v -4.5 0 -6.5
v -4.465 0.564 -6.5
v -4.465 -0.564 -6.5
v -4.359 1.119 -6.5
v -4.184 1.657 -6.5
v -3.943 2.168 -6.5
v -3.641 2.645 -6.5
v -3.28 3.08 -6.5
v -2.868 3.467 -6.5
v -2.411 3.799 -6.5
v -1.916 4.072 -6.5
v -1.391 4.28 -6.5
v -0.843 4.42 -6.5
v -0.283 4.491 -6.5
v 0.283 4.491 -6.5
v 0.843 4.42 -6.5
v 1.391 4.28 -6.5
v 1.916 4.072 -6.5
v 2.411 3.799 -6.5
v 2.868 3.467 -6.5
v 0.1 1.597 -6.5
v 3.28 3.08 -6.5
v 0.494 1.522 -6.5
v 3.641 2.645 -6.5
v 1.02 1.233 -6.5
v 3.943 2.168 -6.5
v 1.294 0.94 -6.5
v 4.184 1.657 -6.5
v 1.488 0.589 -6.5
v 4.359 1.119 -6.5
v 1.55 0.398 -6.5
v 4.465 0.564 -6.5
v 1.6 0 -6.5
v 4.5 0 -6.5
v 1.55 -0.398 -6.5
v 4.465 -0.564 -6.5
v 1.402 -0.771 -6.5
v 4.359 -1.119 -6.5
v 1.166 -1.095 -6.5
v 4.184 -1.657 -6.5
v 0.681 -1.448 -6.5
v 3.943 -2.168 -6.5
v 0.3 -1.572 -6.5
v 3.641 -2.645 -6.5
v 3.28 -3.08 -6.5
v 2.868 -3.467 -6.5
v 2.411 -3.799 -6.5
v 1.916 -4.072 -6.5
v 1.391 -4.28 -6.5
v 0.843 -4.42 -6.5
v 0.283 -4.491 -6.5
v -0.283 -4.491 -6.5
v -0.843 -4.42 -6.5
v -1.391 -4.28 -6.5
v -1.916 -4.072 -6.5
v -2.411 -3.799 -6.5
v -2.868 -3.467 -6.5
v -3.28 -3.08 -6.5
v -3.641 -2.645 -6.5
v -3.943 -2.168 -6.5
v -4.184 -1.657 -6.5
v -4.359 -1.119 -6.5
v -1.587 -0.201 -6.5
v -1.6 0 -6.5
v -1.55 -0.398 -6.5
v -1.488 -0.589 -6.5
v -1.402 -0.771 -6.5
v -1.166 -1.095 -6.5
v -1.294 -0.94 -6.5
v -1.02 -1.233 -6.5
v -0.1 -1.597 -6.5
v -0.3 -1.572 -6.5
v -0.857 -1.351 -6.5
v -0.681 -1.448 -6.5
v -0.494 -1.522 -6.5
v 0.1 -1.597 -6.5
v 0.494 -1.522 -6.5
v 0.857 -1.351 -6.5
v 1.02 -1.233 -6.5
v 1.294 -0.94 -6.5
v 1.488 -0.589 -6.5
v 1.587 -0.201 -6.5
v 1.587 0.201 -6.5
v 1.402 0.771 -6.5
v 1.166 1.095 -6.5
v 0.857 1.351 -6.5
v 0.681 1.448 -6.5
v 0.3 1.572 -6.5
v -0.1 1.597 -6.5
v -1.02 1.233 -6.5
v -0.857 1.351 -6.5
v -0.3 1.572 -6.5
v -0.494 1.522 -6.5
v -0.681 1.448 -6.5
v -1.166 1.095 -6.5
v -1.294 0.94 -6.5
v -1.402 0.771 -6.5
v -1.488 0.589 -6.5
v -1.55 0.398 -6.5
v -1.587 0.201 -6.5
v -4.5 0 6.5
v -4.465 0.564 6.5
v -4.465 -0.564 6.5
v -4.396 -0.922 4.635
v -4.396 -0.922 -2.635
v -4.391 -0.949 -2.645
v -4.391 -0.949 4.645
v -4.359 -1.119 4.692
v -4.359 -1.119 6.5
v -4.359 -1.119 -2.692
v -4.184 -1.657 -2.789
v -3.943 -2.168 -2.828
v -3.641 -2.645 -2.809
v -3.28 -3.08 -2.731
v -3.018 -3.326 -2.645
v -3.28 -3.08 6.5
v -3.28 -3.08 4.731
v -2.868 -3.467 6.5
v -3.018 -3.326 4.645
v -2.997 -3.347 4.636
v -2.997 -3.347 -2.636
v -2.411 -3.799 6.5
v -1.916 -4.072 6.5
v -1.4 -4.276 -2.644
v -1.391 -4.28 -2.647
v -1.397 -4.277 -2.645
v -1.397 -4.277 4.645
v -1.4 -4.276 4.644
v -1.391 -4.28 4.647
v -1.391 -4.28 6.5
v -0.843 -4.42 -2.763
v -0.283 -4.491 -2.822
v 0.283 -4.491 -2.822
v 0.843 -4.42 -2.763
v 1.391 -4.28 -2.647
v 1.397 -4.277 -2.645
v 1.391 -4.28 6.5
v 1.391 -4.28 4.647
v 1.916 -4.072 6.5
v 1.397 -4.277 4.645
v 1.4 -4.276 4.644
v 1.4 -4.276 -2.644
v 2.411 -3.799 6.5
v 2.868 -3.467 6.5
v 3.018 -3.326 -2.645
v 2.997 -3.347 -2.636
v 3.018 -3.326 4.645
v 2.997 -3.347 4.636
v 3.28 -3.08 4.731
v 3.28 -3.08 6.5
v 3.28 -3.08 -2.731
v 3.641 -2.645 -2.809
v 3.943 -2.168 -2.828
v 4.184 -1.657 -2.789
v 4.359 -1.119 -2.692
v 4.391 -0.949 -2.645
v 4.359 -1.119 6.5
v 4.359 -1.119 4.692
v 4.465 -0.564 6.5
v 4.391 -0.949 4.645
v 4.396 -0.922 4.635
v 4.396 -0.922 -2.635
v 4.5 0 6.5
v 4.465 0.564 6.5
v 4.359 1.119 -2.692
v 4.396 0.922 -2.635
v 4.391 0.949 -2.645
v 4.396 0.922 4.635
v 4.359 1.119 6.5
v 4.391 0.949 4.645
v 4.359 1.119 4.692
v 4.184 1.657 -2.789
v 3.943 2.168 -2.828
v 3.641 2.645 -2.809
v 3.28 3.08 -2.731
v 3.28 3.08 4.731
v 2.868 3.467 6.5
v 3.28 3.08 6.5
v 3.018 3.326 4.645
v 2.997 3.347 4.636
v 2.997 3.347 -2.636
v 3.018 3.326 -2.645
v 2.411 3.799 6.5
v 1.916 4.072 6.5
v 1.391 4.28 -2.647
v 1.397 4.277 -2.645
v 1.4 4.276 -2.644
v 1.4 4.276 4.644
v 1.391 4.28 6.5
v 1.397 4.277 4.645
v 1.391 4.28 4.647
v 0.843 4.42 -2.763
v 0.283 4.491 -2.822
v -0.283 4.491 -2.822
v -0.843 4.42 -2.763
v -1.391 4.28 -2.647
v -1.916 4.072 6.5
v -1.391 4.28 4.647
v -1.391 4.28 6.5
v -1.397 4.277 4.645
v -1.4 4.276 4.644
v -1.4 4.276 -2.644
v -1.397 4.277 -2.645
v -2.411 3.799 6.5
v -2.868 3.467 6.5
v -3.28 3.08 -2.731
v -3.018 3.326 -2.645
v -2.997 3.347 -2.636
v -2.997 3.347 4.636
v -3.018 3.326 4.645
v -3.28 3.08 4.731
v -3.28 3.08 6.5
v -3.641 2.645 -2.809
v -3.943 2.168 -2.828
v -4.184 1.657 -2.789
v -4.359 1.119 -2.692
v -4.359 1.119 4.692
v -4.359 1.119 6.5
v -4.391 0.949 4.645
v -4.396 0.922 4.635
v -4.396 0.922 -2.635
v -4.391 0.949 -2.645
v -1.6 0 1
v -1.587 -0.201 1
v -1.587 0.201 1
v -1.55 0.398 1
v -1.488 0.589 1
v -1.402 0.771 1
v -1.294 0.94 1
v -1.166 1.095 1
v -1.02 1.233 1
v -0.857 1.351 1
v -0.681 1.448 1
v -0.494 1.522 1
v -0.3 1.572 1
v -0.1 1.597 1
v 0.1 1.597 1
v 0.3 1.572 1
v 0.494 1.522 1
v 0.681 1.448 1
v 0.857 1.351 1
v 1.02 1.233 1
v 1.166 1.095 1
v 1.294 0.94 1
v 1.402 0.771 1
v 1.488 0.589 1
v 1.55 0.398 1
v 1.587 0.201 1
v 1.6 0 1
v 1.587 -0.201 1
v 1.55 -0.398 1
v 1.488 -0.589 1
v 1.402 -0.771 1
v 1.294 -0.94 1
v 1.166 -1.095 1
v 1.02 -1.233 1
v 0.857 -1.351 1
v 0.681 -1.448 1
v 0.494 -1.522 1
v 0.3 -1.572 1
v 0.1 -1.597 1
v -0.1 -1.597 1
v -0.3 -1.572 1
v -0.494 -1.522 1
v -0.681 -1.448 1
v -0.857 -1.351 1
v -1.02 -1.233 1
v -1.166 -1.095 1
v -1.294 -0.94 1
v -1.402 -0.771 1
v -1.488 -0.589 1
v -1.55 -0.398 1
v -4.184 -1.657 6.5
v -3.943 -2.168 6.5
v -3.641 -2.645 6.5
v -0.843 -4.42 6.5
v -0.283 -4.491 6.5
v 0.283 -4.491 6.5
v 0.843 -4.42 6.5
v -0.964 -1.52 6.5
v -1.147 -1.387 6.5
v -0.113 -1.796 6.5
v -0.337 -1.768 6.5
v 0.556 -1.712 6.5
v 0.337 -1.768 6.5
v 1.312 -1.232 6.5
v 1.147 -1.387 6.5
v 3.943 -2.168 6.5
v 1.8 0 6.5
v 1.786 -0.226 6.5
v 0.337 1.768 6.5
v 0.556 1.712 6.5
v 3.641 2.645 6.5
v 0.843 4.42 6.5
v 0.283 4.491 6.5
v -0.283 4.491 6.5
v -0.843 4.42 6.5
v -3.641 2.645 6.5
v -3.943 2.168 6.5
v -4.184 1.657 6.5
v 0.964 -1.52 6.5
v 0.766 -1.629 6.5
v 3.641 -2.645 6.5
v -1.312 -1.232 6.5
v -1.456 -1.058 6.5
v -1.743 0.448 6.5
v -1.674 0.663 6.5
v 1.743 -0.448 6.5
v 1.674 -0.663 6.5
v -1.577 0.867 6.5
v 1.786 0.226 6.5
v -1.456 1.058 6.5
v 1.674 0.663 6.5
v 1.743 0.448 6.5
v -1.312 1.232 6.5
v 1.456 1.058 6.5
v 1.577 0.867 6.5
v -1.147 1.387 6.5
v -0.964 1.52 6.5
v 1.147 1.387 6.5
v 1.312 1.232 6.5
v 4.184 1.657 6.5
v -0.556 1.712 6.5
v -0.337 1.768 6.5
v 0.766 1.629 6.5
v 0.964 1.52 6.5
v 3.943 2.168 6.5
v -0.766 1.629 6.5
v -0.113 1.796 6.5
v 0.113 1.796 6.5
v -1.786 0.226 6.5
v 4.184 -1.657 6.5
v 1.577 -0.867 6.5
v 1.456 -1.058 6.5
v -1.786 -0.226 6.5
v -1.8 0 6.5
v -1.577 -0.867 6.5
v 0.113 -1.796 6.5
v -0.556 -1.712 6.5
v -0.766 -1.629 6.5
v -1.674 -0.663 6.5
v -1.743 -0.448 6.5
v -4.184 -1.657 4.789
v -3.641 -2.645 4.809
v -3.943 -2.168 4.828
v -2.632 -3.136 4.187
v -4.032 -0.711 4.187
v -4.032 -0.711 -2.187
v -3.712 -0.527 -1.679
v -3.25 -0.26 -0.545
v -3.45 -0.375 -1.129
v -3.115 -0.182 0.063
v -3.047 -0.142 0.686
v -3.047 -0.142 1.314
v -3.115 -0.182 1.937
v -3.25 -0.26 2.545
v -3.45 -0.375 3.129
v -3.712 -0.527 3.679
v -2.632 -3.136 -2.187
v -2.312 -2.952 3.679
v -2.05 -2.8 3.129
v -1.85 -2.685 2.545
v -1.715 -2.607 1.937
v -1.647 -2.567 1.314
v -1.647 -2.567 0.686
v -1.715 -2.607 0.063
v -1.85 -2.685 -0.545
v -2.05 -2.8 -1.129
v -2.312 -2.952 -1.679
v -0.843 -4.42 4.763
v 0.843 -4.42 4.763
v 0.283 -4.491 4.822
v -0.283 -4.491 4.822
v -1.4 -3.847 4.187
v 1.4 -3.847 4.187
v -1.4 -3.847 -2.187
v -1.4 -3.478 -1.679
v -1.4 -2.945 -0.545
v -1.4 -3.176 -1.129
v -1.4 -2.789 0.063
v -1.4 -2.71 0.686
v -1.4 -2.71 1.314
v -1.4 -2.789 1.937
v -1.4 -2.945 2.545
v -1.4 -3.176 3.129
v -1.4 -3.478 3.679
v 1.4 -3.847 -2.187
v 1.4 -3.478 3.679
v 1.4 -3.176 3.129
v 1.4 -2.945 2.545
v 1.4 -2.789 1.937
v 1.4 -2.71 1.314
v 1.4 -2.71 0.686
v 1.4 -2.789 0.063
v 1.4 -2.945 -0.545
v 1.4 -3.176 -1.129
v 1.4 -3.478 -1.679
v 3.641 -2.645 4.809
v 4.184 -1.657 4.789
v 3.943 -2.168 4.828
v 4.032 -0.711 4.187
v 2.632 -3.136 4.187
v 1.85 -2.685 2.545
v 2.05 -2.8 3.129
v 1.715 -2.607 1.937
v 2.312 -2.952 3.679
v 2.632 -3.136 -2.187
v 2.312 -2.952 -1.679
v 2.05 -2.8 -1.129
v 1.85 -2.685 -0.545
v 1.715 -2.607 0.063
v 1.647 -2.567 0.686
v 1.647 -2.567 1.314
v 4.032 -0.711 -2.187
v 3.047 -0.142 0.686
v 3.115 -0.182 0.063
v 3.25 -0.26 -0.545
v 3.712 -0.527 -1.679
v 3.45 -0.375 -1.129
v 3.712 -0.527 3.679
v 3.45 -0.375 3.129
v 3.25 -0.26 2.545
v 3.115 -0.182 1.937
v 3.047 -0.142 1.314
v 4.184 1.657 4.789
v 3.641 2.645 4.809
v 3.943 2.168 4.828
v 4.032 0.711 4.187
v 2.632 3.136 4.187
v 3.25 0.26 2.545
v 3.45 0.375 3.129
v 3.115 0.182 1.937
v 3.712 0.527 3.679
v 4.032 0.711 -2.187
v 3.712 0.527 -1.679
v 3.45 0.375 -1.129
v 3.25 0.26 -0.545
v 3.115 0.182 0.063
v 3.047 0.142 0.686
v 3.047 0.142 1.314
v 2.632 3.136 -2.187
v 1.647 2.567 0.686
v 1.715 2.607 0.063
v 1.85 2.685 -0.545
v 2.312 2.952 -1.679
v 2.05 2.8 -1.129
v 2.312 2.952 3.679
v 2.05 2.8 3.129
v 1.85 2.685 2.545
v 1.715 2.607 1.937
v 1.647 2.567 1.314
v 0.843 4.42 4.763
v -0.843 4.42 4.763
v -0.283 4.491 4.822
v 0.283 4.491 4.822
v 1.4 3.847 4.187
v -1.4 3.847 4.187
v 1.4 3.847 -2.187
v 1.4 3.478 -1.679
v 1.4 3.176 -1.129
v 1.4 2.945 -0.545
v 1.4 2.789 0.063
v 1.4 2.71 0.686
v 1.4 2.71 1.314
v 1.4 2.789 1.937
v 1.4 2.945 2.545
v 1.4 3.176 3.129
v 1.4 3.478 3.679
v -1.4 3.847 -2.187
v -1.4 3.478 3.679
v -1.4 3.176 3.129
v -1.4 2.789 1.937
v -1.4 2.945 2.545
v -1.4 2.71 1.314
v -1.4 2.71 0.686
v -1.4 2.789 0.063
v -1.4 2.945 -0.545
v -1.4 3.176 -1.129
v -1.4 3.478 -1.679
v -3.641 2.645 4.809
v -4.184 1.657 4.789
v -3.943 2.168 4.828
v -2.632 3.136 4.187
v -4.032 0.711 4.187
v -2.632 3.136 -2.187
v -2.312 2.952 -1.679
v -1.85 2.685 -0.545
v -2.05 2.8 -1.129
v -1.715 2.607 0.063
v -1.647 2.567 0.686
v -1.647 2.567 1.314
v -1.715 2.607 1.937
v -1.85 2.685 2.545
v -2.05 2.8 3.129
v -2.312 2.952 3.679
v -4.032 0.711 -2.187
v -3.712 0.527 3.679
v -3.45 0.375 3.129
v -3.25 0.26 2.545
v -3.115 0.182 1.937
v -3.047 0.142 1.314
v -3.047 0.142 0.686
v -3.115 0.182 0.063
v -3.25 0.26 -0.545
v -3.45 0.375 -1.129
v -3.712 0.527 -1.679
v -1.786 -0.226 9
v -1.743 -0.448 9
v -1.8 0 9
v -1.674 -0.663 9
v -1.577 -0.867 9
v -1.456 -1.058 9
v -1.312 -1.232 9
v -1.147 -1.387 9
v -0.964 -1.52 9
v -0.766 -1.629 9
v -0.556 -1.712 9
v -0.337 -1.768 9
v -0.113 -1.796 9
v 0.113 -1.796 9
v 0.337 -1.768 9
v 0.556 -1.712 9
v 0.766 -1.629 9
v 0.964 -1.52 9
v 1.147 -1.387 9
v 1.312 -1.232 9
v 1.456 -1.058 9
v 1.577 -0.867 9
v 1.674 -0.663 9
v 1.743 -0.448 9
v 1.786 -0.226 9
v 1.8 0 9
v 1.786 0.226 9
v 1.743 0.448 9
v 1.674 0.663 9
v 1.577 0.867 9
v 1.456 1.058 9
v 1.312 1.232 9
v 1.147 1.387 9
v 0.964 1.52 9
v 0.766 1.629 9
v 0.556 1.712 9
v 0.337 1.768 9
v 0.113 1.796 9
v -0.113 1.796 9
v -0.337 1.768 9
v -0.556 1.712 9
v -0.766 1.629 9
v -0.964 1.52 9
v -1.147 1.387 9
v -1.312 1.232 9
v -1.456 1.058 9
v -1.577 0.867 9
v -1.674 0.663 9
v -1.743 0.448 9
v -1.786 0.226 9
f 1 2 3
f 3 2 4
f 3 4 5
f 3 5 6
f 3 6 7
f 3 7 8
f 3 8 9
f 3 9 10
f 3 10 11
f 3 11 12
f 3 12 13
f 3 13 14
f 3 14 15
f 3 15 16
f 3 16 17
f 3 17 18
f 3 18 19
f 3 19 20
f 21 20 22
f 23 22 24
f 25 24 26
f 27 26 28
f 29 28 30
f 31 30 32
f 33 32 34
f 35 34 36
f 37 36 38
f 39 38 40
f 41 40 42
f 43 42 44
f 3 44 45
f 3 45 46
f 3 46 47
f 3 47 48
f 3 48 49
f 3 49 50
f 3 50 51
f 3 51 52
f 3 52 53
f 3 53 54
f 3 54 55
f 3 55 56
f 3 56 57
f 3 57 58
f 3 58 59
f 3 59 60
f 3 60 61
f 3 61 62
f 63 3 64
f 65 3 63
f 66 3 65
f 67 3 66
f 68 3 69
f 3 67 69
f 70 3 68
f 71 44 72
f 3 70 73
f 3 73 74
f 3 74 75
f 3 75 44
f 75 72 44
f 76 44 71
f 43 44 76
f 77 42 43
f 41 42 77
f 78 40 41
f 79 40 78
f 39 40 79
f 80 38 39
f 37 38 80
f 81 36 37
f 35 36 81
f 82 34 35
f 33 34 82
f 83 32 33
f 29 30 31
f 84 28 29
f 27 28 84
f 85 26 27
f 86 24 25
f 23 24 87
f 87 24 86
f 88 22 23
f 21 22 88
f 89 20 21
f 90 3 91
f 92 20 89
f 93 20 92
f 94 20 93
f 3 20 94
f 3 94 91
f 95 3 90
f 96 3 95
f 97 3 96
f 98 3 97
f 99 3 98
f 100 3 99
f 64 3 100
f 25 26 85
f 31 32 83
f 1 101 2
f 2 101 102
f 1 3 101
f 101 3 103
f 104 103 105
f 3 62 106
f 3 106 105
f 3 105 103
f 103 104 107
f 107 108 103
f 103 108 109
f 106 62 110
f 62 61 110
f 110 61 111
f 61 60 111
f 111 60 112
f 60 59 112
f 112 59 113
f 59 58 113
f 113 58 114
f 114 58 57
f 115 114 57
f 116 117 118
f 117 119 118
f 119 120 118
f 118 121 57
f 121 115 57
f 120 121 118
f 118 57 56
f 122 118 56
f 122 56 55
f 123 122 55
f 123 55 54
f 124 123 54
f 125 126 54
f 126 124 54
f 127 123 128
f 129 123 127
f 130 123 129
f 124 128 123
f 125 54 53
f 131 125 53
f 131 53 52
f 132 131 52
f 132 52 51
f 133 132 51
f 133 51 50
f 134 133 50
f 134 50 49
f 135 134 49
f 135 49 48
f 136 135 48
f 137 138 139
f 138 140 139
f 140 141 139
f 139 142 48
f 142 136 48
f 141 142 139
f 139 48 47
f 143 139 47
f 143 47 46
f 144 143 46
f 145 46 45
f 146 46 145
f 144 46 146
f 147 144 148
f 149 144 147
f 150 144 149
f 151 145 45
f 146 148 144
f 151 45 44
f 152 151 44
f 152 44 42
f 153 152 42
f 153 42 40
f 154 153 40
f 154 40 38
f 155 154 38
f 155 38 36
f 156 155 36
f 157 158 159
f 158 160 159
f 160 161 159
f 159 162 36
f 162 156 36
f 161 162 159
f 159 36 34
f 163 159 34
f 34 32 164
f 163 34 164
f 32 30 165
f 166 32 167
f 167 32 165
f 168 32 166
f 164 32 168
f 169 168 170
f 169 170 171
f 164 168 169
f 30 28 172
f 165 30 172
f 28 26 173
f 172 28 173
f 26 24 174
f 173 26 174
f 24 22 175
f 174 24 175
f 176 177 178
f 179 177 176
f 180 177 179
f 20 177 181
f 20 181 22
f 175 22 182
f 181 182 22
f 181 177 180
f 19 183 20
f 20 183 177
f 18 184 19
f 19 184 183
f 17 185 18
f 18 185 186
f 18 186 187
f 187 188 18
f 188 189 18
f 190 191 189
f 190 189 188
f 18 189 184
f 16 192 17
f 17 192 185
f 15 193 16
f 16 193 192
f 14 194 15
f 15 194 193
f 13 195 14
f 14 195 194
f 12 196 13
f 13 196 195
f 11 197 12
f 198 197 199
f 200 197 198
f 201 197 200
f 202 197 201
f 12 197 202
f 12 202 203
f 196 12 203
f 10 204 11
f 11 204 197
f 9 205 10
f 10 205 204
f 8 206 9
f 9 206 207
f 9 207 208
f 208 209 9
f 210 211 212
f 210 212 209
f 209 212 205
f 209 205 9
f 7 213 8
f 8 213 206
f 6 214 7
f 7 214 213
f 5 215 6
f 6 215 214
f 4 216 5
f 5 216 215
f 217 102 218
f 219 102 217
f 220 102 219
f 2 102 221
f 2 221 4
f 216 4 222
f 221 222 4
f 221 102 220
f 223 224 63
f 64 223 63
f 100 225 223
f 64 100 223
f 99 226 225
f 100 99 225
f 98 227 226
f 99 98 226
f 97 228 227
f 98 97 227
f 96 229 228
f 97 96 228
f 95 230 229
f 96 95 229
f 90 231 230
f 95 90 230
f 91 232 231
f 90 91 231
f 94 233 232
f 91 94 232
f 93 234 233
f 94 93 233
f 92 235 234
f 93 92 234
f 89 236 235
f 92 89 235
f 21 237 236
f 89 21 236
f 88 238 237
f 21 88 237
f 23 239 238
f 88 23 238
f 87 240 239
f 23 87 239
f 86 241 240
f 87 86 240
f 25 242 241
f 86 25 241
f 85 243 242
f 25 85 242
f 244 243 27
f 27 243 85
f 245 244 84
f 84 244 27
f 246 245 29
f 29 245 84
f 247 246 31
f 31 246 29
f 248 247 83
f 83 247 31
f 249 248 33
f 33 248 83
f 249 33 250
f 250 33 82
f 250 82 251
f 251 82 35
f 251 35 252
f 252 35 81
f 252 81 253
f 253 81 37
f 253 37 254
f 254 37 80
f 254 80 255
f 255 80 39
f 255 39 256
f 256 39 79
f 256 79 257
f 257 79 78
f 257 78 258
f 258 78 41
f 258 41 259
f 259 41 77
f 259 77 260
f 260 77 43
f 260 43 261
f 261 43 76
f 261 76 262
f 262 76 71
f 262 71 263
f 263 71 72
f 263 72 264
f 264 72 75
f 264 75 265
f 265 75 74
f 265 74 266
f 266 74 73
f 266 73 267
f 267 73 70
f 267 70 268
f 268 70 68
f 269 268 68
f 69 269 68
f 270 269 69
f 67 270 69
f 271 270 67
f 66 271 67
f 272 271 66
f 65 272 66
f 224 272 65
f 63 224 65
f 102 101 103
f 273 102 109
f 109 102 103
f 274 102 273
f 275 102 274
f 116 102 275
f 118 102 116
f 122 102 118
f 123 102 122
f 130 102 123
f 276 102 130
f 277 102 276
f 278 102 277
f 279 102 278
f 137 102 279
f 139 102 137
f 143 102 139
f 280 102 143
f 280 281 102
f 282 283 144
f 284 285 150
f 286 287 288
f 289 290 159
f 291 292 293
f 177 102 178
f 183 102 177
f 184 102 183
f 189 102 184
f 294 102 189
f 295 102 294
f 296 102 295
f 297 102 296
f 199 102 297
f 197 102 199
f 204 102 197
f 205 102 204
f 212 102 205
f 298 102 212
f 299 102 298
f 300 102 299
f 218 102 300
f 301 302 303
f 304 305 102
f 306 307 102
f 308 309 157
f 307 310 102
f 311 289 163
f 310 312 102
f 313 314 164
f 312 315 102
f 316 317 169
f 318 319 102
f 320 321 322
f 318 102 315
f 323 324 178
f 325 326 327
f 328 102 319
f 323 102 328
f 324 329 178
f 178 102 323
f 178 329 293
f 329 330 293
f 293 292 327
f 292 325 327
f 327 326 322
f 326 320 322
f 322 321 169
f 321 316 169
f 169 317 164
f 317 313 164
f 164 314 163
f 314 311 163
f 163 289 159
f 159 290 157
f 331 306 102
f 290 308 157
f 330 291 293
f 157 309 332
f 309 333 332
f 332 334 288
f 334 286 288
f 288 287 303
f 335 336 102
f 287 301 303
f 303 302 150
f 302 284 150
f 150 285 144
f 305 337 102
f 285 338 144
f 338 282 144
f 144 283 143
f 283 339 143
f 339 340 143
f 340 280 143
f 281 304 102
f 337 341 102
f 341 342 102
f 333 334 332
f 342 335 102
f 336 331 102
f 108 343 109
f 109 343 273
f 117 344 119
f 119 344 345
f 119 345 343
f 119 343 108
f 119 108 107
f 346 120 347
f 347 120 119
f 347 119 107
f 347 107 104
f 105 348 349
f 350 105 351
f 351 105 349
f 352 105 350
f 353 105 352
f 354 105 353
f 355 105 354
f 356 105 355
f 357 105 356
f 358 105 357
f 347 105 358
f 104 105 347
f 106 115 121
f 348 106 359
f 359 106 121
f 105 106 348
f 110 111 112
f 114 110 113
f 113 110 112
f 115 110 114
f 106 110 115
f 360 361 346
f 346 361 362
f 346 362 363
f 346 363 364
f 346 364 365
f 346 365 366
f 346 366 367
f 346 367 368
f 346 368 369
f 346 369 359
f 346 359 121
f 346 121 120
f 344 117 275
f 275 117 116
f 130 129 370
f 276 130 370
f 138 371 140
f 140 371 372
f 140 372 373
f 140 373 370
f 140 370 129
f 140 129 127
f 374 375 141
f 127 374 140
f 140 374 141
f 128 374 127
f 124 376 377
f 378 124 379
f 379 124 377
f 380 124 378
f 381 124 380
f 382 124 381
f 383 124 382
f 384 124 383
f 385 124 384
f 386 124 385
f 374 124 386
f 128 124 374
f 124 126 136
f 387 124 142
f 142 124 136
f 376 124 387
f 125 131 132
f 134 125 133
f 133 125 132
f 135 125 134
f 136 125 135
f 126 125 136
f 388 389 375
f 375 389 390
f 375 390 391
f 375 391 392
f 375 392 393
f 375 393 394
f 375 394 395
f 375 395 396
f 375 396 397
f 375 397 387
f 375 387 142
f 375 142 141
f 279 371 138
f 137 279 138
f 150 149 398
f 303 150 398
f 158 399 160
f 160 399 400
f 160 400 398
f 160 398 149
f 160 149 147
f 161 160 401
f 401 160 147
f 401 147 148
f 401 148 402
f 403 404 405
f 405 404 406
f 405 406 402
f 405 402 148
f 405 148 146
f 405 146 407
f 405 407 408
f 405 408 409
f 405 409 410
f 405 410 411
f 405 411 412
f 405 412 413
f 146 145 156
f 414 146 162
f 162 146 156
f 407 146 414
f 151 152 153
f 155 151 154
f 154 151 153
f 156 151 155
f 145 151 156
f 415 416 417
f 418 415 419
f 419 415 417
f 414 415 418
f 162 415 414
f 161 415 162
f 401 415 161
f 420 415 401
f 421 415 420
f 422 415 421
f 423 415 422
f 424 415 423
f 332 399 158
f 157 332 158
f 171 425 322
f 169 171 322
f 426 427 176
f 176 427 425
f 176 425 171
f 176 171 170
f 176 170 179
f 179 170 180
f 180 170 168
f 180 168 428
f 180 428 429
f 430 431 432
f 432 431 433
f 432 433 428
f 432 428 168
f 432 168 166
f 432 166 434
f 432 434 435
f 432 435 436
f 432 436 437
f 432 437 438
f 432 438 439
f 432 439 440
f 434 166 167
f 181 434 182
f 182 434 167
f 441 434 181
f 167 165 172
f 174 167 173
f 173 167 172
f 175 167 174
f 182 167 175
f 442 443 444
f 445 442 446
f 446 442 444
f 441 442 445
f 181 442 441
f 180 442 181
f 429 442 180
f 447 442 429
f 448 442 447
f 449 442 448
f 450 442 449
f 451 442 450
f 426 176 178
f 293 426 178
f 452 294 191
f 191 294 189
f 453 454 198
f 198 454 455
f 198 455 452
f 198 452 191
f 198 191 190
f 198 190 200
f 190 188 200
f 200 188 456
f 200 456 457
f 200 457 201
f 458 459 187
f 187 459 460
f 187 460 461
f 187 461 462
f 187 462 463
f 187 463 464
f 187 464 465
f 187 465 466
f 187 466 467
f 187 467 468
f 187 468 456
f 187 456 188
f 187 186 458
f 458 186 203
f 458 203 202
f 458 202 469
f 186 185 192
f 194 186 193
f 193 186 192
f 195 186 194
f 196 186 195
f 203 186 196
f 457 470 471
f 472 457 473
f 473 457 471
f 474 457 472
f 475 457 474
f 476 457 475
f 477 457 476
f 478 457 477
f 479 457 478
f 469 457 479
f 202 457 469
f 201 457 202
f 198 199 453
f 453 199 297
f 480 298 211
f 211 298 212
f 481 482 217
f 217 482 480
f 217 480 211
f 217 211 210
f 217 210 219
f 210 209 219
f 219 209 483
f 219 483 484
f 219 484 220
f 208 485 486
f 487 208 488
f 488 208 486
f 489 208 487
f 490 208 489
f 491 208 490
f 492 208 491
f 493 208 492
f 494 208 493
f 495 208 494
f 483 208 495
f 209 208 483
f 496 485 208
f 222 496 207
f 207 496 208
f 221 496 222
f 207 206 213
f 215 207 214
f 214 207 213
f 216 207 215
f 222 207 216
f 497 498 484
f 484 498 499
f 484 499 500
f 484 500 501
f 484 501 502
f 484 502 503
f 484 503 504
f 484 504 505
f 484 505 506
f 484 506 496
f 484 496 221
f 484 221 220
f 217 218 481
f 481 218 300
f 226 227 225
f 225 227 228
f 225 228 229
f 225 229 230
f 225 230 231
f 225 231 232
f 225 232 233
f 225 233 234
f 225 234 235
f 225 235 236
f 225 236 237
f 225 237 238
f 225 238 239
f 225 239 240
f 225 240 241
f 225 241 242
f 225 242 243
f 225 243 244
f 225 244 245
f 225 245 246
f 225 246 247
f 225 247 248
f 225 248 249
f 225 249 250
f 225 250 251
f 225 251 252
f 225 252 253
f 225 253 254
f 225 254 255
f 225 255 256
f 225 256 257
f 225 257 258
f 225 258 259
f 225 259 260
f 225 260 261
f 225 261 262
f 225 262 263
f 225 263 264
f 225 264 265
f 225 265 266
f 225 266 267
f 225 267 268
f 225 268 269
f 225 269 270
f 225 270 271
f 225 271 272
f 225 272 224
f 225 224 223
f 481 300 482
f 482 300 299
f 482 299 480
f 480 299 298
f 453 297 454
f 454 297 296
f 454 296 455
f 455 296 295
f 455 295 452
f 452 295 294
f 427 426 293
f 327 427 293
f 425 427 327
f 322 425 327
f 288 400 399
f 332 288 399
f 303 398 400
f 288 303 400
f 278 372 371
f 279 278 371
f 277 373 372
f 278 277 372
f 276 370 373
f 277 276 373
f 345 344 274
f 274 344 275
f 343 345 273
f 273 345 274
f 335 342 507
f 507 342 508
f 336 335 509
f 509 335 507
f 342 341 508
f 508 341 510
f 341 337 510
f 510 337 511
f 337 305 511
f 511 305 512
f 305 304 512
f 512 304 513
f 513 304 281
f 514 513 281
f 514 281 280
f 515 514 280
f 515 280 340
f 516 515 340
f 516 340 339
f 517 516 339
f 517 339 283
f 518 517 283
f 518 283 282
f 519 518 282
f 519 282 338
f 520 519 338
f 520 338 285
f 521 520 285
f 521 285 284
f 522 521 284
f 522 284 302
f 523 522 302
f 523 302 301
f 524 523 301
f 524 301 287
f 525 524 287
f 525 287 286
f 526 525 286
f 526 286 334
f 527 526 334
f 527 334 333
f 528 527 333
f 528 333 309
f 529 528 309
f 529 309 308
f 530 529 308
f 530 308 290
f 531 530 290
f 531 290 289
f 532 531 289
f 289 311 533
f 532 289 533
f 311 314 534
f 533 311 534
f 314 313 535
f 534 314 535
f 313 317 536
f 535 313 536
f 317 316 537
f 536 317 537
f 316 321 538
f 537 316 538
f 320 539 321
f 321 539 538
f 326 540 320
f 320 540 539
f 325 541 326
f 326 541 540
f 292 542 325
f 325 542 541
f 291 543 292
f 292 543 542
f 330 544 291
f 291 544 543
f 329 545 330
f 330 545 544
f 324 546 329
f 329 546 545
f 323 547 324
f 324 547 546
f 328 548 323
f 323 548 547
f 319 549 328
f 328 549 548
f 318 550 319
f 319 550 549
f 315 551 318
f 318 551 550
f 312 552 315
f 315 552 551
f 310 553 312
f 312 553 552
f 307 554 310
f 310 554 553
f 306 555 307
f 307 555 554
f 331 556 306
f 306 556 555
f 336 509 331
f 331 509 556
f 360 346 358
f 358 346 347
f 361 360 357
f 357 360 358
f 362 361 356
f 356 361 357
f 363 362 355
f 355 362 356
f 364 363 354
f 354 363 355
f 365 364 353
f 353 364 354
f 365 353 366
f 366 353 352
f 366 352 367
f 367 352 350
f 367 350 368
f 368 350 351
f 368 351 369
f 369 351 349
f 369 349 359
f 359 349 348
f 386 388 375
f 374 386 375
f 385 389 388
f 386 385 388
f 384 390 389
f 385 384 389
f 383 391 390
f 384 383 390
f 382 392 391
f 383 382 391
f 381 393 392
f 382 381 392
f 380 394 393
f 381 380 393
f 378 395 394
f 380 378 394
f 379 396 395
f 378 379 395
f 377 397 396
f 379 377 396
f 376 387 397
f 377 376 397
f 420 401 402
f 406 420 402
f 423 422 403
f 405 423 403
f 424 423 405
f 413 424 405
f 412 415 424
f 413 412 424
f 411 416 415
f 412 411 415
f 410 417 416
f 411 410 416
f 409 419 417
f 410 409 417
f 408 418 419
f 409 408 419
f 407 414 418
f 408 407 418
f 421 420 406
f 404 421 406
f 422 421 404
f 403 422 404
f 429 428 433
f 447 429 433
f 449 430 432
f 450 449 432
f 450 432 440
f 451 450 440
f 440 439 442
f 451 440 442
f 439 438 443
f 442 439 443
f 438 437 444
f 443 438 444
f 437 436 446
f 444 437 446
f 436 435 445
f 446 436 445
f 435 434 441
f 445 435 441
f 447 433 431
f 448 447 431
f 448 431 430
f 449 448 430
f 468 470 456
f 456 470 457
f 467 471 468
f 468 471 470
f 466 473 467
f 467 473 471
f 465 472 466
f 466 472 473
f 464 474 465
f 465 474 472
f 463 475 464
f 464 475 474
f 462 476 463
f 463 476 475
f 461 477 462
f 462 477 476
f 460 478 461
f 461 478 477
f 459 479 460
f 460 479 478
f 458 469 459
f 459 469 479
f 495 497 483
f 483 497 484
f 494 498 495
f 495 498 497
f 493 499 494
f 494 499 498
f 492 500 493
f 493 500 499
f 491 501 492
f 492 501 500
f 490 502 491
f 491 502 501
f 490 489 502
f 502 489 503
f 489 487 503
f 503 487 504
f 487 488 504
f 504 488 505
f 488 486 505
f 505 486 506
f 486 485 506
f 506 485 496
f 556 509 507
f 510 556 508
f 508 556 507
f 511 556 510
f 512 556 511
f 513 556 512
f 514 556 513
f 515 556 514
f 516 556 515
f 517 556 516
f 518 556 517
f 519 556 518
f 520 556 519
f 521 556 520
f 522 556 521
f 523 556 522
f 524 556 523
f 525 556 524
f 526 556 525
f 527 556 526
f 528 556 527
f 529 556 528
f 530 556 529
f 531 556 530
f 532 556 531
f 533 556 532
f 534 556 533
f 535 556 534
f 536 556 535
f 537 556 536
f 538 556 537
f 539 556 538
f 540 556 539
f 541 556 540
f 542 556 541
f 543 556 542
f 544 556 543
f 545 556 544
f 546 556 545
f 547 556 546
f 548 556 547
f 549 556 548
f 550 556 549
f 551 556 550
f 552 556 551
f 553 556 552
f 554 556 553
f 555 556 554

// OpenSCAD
$fn=50;
translate([0,0,7])cylinder(h=4,r=1.8,center=true);
difference(){
	cylinder(h=13,r=4.5,center=true);
	translate([0,0,-3])cylinder(h=8,r=1.6,center=true);

	rotate([0,90,0]){
	for ( i = [0 : 5] ){
	   rotate( i * 360 / 6, [90, 0, 0])
   	translate([-1, 7.7, 0])cylinder(r=5,h=2.8,center=true);
	}
	}
}
